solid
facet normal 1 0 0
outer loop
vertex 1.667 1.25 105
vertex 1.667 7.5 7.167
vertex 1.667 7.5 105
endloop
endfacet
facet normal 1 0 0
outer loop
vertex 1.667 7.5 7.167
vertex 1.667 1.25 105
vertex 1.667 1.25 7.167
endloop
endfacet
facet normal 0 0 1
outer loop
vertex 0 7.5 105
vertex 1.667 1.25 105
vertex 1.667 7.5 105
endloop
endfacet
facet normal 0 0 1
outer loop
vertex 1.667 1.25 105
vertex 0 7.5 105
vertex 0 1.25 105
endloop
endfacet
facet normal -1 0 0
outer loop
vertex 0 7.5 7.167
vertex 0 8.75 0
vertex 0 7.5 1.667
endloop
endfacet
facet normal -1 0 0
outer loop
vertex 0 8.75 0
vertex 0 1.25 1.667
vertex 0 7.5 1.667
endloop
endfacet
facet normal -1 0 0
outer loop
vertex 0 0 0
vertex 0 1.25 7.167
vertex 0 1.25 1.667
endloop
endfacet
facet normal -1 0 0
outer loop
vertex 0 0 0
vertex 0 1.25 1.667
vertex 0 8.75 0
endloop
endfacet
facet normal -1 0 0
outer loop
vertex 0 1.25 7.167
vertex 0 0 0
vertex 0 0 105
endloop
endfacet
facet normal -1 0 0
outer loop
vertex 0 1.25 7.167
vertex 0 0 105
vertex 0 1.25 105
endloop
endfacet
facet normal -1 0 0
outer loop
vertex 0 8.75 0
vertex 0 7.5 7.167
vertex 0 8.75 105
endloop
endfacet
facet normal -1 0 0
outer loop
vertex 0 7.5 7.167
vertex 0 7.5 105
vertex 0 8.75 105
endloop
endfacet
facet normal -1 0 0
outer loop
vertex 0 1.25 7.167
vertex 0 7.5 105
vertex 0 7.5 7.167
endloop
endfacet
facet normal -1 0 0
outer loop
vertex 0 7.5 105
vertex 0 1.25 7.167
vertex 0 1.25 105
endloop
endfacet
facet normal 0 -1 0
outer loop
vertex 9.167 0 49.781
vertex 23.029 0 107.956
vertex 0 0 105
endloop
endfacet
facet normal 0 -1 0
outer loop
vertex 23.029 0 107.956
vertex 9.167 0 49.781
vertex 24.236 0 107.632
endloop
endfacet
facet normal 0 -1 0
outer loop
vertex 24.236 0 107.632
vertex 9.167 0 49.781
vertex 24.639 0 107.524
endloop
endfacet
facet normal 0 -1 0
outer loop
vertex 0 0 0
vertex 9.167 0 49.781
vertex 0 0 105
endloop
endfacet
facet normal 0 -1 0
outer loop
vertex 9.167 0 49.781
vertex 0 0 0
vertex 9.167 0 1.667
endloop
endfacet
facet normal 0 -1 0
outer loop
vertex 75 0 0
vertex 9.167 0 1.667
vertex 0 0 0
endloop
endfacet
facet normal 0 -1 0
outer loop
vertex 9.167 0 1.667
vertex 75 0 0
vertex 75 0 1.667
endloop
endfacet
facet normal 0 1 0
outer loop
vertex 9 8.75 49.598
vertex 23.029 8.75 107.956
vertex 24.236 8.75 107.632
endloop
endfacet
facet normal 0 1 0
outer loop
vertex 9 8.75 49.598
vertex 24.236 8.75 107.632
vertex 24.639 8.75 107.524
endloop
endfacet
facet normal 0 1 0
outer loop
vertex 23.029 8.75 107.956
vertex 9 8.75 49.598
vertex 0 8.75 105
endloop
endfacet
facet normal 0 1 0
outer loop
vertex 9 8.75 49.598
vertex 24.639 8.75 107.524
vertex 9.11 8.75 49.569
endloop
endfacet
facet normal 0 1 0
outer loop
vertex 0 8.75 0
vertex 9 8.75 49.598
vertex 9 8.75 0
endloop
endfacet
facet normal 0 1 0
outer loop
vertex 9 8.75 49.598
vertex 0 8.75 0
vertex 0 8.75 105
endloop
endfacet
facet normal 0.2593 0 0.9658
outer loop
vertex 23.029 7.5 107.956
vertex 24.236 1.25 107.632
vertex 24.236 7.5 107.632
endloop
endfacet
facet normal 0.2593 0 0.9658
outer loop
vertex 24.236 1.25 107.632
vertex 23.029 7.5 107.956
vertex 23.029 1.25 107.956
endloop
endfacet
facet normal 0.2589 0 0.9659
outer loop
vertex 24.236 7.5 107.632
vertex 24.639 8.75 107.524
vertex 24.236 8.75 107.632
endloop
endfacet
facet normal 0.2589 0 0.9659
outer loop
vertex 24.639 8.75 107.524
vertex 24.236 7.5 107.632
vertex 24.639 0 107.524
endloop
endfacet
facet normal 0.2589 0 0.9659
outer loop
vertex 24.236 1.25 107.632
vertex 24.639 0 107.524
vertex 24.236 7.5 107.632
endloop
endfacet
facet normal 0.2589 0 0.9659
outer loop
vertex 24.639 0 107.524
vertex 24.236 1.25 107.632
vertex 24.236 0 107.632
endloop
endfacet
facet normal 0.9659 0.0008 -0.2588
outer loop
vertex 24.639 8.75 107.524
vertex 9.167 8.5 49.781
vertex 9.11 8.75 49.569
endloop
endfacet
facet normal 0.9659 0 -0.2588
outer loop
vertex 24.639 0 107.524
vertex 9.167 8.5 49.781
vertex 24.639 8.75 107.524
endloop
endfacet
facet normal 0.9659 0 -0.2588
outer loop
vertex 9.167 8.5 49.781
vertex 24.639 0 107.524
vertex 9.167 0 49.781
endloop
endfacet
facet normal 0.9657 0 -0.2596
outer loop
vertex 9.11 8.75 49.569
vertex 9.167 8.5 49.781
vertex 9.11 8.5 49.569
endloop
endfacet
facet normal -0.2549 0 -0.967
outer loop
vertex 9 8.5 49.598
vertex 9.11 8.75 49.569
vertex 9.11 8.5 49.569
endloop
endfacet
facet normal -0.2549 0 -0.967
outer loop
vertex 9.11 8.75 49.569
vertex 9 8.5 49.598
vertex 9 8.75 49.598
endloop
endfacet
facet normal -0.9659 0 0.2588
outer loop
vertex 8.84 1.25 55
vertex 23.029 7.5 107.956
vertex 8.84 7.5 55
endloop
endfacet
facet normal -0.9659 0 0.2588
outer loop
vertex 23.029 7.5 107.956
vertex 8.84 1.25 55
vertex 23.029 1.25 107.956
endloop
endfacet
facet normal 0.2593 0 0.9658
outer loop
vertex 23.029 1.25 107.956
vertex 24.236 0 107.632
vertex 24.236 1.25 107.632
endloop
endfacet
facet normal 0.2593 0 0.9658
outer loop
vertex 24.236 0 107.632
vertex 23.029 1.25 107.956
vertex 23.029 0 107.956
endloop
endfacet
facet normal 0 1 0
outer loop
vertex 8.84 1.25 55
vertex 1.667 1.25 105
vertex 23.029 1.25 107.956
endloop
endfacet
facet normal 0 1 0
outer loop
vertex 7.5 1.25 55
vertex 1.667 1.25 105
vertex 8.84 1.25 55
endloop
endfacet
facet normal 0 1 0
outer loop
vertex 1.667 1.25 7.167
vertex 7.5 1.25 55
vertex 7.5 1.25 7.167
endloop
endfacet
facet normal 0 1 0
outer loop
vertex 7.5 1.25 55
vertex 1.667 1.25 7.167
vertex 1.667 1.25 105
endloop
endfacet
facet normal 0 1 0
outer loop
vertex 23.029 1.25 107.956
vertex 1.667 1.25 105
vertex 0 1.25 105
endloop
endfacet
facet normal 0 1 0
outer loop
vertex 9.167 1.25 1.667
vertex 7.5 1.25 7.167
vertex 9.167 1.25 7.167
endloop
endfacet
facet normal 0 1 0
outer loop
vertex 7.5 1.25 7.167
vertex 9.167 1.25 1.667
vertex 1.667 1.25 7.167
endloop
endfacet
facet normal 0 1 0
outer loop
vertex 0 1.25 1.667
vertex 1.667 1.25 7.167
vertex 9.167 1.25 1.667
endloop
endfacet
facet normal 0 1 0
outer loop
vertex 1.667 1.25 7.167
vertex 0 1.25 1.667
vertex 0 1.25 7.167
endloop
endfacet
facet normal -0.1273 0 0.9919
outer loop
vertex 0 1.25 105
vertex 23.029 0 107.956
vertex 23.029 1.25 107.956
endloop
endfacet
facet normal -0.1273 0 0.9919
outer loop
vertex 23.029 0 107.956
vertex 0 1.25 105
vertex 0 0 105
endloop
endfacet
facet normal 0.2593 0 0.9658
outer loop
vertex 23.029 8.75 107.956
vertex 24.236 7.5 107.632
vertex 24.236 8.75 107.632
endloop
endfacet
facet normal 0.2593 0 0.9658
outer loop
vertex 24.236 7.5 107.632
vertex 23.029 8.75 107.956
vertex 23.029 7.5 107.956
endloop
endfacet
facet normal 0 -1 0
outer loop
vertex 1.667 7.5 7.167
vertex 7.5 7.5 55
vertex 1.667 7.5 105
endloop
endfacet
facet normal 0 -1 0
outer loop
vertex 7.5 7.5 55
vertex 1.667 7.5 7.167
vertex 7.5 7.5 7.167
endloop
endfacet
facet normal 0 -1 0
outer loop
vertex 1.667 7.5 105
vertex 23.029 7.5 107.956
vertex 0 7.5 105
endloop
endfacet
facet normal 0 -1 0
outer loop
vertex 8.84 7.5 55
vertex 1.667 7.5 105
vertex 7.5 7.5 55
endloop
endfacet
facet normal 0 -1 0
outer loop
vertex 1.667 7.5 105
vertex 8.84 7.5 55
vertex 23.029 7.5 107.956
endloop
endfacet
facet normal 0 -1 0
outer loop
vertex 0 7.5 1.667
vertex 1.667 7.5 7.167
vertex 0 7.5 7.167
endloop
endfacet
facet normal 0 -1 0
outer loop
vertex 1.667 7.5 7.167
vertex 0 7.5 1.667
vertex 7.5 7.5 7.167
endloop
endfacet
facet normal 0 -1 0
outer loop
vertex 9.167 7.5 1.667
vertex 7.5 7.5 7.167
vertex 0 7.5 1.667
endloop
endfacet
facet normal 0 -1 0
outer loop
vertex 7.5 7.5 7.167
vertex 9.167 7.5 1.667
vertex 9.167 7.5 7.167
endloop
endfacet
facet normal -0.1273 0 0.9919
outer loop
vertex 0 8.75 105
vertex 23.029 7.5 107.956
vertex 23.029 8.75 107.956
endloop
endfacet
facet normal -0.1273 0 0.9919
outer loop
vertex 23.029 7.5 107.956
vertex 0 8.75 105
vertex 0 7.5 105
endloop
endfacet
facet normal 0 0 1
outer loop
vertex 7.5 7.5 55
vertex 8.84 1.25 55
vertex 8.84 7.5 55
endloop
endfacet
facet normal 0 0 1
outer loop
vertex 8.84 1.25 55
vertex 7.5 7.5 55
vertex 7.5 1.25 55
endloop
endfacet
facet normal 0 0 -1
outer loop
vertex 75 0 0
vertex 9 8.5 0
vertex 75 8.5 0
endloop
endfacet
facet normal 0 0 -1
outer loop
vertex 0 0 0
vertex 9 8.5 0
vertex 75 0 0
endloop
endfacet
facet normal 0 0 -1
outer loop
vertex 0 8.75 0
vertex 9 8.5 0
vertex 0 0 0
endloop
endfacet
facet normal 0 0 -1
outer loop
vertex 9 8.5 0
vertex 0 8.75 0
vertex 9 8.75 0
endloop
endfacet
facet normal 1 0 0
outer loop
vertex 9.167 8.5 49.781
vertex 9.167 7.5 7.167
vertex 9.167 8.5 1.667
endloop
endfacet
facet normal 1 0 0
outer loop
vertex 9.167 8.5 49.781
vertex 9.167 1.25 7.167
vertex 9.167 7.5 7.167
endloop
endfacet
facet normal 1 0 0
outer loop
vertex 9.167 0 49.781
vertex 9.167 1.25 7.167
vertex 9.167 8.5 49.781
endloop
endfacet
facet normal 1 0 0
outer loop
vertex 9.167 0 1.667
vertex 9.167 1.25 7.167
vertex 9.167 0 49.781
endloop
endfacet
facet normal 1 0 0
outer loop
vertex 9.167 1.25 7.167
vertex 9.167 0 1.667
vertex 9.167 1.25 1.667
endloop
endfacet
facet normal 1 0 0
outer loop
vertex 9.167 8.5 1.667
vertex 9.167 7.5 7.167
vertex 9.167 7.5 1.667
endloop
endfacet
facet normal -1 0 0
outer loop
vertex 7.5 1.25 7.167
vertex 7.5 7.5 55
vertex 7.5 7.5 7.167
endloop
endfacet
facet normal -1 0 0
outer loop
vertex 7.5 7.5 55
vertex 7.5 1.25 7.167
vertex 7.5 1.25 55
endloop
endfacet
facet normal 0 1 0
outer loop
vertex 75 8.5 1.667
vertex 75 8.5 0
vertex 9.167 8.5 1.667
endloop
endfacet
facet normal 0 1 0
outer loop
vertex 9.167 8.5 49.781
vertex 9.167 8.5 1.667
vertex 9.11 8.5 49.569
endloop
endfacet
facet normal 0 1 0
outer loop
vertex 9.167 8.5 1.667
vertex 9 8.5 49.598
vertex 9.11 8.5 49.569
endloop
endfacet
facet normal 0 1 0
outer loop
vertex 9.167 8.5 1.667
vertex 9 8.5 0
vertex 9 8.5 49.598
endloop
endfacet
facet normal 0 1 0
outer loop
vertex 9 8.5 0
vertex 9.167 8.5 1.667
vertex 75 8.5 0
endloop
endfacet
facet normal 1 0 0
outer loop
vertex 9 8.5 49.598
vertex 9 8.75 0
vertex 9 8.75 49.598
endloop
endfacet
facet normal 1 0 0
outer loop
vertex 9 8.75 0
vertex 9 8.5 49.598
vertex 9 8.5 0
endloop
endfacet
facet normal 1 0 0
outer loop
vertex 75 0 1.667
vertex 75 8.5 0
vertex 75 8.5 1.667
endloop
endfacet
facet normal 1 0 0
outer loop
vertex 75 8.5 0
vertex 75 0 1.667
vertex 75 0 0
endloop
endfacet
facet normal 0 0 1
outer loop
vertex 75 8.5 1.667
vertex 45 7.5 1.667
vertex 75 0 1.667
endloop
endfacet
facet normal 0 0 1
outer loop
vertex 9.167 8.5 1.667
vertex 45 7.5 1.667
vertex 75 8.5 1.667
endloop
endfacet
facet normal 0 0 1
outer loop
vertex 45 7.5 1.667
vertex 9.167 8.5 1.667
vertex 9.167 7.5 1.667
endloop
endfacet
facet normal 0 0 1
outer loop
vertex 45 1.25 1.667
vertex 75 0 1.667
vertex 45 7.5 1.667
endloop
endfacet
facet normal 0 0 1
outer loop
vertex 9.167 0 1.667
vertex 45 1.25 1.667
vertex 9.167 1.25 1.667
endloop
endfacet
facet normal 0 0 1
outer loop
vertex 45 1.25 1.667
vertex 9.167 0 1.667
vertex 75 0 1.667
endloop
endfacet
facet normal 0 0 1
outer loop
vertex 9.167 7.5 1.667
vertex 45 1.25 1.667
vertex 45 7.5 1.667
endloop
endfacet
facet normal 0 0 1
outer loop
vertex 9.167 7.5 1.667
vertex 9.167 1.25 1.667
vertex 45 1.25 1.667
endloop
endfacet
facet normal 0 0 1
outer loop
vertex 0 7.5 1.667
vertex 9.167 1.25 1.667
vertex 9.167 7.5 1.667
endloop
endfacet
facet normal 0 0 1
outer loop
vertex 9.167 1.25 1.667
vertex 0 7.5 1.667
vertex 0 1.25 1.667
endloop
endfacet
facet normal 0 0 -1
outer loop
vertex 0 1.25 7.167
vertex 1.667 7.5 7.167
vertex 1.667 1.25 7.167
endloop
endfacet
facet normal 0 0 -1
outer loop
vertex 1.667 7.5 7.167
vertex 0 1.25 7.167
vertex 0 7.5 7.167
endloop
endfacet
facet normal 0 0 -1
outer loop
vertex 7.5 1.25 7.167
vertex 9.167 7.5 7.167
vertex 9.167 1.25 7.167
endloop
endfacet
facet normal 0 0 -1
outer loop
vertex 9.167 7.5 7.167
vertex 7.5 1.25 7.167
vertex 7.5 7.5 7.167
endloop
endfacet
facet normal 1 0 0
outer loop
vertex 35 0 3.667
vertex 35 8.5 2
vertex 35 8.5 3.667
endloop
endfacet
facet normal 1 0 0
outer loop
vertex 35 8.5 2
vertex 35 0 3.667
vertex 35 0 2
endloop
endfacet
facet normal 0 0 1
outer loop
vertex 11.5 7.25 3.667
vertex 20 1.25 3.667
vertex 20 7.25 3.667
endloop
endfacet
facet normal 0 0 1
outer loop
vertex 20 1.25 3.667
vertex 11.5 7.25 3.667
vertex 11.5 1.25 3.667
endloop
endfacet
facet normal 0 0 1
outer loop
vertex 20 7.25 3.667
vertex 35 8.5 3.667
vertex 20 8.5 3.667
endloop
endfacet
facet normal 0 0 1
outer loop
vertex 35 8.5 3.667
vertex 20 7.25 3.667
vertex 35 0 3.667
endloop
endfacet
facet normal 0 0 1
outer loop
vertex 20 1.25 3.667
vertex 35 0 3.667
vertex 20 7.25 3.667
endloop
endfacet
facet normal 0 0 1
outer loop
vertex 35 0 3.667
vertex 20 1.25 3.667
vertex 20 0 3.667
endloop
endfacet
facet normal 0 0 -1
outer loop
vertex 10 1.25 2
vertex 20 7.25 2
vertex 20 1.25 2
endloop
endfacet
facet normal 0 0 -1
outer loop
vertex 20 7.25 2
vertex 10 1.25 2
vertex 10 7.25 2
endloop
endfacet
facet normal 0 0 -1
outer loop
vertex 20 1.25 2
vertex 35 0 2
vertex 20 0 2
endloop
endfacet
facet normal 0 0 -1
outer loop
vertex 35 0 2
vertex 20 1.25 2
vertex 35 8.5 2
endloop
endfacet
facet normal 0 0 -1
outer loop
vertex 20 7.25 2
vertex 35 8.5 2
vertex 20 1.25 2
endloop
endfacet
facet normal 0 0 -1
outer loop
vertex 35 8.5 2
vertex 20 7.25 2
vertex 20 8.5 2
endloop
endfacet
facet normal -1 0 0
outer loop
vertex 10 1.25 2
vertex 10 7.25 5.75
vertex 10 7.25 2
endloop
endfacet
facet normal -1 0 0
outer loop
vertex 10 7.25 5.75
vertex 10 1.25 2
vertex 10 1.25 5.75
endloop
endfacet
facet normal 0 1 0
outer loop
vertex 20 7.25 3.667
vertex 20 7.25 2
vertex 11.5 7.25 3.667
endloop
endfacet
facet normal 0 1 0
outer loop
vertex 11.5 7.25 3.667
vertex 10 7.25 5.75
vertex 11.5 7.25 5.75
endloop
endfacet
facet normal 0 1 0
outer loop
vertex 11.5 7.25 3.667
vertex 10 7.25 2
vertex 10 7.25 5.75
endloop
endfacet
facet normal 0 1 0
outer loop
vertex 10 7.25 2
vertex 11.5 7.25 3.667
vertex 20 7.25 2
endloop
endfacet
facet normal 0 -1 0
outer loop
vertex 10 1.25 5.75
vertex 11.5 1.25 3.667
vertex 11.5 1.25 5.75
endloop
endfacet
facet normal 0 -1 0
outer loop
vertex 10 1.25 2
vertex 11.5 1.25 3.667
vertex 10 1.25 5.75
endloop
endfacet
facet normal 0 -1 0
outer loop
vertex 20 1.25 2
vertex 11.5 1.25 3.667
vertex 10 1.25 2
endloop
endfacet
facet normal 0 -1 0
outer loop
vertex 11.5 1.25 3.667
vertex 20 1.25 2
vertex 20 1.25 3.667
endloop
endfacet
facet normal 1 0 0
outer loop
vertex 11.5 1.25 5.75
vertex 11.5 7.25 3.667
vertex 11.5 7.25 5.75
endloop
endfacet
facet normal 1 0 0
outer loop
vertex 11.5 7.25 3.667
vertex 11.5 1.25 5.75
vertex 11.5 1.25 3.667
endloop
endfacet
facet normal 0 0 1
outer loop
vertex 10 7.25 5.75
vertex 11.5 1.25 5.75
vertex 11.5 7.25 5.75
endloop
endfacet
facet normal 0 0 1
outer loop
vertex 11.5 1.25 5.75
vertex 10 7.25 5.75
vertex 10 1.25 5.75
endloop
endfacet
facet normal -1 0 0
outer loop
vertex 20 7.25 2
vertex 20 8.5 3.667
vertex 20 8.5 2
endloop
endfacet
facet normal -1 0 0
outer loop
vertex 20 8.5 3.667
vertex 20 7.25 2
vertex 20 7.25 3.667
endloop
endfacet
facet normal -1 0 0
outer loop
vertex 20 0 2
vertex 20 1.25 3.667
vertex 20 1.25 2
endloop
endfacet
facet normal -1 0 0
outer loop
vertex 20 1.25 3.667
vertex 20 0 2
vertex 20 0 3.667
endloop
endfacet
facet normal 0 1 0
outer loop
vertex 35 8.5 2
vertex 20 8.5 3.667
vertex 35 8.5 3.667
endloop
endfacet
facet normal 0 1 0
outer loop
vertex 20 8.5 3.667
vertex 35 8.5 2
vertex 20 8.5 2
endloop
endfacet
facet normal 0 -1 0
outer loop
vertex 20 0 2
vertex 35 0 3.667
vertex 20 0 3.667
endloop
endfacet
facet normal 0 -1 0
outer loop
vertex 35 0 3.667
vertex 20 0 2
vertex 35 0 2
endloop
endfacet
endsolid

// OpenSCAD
d = 5; //pyssla diameter
h = 5; //pyssla height
n = 10; //no of pyssla in the sorter

module pyssla() {
    color([1, 0, 1])
    rotate([-90, 0, 0])
    cylinder(d = d, h = h);
}

module cover() {
    hull() {
        cube([d/4, d/4, 1.1*n*h]);
        translate([1.5*d, 0, 0])
        rotate([0, 15, 0])
        cube([d/4, d/4, 1.2*n*h]);
    }
}

module funnel() {
    cube([d/3, 1.7*d, 1.1*n*h]);
    
    translate([1.5*d, 0, 0])
    rotate([0, 15, 0])
    cube([d/3, 1.75*d, 1.2*n*h]);
    
    cover();
    translate([0, 1.5*d, 0])
    cover();
}

module tube() {    
    cube([d/3, 1.7*d, 1.1*n*h]);
    translate([1.5*d, 0, 0])
    cube([d/3, 1.7*d, 1.1*n*h]);
    cube([1.5*d, d/4, 1.1*n*h]);
    translate([0, 1.5*d, 0])
    cube([1.8*d, d/4, 1.1*n*h]);
}

module base() {
    cube([15*d, 1.7*d, d/3]);
}

module pusher() {
    cube([5*d, 1.2*d, d/3]);
    cube([0.3*d, 1.2*d, 0.75*d]);
    
    translate([2*d, -0.25*d, 0])
    cube([3*d, 1.7*d, d/3]);
}

/*
for (i = [0 : 1 : n] ) {
    translate([d, 0.25*d, 1.1*(i-0.25)*h]) pyssla();
}
*/

difference() {
    union() {
        translate([0, 0, n*h])
        funnel();
        tube();
        base();
    }
    translate([-d, 0.25*d, d/3]) cube([n*d, 1.25*d, 1.1*d]);
}

translate([2*d, 0.25*d, 0.4*d])
    pusher();
